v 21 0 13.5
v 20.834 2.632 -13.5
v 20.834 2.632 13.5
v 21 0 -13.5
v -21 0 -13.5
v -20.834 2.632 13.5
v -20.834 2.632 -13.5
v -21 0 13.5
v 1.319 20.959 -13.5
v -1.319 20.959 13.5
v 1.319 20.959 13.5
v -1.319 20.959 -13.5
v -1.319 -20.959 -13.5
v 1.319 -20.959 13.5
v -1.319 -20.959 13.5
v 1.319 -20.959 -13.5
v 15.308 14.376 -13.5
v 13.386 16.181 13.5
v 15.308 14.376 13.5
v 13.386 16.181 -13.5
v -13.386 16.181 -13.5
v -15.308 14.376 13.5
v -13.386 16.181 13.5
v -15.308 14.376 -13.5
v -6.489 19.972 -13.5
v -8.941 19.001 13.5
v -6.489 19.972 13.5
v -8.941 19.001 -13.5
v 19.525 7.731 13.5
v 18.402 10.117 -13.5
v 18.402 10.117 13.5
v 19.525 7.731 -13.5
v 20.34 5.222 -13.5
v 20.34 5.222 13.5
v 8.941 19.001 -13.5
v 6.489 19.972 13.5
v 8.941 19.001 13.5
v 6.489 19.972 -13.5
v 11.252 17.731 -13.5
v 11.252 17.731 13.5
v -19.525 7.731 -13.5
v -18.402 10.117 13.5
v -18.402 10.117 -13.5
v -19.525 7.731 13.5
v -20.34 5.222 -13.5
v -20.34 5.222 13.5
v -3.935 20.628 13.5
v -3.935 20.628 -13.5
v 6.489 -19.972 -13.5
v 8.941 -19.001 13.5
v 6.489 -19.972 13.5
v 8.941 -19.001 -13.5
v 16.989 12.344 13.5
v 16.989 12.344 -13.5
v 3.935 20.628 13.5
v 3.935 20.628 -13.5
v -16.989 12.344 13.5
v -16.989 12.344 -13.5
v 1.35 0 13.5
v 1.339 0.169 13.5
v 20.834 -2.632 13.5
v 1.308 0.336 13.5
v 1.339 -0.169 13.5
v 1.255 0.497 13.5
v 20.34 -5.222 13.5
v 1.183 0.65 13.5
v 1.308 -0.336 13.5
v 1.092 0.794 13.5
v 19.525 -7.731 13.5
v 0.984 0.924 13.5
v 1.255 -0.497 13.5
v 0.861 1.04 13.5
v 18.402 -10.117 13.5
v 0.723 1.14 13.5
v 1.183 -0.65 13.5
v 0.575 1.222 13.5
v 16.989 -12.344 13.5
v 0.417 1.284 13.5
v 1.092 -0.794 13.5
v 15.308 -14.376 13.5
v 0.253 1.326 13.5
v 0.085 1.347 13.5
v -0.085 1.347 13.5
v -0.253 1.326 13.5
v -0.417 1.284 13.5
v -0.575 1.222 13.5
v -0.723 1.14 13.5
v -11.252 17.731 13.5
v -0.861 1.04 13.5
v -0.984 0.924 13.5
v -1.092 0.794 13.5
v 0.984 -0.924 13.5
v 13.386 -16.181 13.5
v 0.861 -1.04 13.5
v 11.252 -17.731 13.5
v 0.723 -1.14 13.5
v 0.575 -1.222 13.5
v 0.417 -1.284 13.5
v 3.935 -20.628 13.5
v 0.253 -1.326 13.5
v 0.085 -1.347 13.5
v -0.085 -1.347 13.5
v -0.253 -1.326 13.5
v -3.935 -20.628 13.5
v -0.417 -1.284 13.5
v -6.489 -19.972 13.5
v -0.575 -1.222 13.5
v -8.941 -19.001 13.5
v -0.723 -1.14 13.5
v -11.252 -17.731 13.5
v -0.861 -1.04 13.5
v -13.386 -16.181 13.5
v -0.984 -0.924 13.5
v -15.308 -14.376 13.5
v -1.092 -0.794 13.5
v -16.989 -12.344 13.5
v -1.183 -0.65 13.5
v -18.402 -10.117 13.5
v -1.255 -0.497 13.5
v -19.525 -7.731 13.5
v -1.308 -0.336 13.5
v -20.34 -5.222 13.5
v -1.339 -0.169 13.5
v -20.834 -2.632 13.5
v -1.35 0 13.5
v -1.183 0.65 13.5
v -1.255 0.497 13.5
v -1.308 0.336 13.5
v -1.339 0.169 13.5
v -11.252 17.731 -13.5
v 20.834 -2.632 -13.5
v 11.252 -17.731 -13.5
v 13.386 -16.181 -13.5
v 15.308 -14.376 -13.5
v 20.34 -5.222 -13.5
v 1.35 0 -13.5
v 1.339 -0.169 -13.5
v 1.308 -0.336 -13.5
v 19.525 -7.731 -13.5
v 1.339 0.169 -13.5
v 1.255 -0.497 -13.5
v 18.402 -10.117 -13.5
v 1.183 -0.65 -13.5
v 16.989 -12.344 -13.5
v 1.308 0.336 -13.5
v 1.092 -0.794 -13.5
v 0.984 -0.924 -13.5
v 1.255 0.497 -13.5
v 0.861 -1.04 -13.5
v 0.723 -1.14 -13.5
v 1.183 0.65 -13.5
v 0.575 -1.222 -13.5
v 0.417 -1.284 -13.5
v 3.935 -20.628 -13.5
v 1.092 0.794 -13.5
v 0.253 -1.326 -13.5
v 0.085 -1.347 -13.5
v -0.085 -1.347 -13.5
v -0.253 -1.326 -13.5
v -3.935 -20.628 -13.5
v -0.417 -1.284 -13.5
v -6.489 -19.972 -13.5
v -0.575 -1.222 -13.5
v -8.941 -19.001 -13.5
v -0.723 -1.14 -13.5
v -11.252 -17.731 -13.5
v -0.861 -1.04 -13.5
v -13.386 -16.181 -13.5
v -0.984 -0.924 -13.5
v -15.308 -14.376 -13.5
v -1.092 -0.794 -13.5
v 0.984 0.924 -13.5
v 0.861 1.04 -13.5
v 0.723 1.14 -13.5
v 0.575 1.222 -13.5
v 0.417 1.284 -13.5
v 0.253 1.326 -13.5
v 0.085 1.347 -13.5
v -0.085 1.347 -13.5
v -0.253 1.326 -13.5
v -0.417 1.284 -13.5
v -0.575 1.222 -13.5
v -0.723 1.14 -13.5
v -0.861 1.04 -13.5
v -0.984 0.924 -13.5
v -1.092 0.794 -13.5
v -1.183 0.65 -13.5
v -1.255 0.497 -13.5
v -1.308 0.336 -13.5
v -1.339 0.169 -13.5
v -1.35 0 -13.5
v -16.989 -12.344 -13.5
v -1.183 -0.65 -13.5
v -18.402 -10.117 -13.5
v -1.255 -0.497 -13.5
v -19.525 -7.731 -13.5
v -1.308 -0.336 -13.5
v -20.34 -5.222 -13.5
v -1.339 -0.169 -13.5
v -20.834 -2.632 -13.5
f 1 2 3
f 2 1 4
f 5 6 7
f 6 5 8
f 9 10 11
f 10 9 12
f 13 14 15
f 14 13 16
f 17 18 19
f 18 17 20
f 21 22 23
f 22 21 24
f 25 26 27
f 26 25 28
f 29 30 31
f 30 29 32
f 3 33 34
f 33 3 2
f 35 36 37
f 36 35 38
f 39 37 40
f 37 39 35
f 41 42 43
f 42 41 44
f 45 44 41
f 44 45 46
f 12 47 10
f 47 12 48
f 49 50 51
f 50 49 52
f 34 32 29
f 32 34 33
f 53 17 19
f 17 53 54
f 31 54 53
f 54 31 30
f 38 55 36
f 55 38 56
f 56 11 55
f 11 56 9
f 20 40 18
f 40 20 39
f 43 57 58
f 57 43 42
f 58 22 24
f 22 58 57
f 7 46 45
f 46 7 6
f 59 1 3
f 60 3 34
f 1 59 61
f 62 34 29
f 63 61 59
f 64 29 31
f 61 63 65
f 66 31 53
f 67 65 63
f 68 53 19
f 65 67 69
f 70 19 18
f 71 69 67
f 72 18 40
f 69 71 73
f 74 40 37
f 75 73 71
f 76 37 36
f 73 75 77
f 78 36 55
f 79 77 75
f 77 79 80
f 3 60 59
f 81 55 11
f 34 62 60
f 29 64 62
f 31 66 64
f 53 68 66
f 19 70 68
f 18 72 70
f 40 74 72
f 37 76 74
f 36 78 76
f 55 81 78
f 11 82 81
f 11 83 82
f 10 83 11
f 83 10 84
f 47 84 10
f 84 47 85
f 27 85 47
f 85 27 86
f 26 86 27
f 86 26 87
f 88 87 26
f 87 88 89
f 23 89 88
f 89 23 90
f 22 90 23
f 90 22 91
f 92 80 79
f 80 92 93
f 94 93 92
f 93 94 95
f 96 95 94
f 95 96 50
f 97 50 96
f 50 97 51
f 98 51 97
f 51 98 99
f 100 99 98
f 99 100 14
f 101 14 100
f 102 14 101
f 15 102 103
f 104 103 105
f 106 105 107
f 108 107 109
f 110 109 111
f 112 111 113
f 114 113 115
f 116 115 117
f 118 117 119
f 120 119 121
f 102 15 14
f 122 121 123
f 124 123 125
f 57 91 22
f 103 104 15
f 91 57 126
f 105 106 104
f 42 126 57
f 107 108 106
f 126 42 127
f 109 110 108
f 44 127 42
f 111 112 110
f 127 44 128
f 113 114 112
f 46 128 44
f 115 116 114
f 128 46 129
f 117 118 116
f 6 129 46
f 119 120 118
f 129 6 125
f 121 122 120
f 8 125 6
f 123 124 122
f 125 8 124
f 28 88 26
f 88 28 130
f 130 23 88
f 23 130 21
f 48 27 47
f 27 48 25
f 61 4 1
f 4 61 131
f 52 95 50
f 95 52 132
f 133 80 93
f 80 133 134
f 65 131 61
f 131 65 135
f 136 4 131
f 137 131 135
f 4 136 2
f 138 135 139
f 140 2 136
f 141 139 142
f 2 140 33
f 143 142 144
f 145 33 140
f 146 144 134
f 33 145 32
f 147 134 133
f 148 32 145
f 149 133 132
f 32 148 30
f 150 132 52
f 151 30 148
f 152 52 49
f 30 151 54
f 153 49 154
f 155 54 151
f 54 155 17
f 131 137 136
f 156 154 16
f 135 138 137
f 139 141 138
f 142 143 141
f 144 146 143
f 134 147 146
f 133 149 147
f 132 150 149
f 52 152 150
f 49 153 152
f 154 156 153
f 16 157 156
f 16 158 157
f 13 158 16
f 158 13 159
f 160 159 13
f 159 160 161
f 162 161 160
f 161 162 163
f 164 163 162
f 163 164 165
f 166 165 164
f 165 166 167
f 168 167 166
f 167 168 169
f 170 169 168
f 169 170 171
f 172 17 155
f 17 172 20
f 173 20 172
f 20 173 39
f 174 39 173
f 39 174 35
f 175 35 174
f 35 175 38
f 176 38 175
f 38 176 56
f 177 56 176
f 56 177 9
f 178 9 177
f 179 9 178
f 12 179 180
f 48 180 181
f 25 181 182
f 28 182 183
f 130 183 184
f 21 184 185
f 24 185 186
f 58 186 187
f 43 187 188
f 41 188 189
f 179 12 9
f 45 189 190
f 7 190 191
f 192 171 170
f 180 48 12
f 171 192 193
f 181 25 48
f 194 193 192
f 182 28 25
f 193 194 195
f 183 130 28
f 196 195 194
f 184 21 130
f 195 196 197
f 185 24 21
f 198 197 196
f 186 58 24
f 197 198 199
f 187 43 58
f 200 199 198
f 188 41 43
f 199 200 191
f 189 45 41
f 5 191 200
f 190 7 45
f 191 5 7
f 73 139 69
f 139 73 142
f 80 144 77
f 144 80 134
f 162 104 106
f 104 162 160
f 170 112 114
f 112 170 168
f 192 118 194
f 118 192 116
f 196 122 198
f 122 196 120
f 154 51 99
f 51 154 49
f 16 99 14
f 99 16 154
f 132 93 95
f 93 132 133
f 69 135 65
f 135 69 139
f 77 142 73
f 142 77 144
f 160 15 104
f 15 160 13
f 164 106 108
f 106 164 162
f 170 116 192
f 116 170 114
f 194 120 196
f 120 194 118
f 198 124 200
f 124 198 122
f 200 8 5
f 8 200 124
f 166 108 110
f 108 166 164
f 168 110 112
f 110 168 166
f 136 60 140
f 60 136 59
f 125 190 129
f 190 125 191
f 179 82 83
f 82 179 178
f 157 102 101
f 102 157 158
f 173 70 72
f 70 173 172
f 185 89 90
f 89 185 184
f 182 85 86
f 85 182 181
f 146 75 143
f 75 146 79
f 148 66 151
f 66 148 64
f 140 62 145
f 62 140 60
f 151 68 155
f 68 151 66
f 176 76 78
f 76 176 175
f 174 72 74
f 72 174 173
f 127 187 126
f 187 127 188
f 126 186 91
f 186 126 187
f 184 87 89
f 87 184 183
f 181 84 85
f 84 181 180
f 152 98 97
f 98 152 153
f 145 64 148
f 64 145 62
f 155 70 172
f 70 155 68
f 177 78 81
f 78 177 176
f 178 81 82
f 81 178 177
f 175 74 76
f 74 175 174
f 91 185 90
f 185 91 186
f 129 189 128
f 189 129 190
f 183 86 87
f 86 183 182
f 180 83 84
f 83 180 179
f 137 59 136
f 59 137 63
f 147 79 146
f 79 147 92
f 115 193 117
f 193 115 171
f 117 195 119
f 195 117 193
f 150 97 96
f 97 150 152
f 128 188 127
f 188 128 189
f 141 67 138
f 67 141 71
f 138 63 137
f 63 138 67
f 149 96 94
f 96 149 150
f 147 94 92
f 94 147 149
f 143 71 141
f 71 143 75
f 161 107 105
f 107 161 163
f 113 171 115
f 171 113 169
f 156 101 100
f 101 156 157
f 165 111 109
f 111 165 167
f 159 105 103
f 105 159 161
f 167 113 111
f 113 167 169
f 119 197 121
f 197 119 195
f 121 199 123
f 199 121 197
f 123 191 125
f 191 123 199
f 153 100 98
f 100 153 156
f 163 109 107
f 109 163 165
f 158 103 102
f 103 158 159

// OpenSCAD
$fn = 50;


difference() {
	union() {
		translate(v = [0, 0, -13.5000000000]) {
			cylinder(h = 27, r = 21.0000000000);
		}
	}
	union() {
		translate(v = [0, 0, -100.0000000000]) {
			cylinder(h = 200, r = 1.3500000000);
		}
	}
}
